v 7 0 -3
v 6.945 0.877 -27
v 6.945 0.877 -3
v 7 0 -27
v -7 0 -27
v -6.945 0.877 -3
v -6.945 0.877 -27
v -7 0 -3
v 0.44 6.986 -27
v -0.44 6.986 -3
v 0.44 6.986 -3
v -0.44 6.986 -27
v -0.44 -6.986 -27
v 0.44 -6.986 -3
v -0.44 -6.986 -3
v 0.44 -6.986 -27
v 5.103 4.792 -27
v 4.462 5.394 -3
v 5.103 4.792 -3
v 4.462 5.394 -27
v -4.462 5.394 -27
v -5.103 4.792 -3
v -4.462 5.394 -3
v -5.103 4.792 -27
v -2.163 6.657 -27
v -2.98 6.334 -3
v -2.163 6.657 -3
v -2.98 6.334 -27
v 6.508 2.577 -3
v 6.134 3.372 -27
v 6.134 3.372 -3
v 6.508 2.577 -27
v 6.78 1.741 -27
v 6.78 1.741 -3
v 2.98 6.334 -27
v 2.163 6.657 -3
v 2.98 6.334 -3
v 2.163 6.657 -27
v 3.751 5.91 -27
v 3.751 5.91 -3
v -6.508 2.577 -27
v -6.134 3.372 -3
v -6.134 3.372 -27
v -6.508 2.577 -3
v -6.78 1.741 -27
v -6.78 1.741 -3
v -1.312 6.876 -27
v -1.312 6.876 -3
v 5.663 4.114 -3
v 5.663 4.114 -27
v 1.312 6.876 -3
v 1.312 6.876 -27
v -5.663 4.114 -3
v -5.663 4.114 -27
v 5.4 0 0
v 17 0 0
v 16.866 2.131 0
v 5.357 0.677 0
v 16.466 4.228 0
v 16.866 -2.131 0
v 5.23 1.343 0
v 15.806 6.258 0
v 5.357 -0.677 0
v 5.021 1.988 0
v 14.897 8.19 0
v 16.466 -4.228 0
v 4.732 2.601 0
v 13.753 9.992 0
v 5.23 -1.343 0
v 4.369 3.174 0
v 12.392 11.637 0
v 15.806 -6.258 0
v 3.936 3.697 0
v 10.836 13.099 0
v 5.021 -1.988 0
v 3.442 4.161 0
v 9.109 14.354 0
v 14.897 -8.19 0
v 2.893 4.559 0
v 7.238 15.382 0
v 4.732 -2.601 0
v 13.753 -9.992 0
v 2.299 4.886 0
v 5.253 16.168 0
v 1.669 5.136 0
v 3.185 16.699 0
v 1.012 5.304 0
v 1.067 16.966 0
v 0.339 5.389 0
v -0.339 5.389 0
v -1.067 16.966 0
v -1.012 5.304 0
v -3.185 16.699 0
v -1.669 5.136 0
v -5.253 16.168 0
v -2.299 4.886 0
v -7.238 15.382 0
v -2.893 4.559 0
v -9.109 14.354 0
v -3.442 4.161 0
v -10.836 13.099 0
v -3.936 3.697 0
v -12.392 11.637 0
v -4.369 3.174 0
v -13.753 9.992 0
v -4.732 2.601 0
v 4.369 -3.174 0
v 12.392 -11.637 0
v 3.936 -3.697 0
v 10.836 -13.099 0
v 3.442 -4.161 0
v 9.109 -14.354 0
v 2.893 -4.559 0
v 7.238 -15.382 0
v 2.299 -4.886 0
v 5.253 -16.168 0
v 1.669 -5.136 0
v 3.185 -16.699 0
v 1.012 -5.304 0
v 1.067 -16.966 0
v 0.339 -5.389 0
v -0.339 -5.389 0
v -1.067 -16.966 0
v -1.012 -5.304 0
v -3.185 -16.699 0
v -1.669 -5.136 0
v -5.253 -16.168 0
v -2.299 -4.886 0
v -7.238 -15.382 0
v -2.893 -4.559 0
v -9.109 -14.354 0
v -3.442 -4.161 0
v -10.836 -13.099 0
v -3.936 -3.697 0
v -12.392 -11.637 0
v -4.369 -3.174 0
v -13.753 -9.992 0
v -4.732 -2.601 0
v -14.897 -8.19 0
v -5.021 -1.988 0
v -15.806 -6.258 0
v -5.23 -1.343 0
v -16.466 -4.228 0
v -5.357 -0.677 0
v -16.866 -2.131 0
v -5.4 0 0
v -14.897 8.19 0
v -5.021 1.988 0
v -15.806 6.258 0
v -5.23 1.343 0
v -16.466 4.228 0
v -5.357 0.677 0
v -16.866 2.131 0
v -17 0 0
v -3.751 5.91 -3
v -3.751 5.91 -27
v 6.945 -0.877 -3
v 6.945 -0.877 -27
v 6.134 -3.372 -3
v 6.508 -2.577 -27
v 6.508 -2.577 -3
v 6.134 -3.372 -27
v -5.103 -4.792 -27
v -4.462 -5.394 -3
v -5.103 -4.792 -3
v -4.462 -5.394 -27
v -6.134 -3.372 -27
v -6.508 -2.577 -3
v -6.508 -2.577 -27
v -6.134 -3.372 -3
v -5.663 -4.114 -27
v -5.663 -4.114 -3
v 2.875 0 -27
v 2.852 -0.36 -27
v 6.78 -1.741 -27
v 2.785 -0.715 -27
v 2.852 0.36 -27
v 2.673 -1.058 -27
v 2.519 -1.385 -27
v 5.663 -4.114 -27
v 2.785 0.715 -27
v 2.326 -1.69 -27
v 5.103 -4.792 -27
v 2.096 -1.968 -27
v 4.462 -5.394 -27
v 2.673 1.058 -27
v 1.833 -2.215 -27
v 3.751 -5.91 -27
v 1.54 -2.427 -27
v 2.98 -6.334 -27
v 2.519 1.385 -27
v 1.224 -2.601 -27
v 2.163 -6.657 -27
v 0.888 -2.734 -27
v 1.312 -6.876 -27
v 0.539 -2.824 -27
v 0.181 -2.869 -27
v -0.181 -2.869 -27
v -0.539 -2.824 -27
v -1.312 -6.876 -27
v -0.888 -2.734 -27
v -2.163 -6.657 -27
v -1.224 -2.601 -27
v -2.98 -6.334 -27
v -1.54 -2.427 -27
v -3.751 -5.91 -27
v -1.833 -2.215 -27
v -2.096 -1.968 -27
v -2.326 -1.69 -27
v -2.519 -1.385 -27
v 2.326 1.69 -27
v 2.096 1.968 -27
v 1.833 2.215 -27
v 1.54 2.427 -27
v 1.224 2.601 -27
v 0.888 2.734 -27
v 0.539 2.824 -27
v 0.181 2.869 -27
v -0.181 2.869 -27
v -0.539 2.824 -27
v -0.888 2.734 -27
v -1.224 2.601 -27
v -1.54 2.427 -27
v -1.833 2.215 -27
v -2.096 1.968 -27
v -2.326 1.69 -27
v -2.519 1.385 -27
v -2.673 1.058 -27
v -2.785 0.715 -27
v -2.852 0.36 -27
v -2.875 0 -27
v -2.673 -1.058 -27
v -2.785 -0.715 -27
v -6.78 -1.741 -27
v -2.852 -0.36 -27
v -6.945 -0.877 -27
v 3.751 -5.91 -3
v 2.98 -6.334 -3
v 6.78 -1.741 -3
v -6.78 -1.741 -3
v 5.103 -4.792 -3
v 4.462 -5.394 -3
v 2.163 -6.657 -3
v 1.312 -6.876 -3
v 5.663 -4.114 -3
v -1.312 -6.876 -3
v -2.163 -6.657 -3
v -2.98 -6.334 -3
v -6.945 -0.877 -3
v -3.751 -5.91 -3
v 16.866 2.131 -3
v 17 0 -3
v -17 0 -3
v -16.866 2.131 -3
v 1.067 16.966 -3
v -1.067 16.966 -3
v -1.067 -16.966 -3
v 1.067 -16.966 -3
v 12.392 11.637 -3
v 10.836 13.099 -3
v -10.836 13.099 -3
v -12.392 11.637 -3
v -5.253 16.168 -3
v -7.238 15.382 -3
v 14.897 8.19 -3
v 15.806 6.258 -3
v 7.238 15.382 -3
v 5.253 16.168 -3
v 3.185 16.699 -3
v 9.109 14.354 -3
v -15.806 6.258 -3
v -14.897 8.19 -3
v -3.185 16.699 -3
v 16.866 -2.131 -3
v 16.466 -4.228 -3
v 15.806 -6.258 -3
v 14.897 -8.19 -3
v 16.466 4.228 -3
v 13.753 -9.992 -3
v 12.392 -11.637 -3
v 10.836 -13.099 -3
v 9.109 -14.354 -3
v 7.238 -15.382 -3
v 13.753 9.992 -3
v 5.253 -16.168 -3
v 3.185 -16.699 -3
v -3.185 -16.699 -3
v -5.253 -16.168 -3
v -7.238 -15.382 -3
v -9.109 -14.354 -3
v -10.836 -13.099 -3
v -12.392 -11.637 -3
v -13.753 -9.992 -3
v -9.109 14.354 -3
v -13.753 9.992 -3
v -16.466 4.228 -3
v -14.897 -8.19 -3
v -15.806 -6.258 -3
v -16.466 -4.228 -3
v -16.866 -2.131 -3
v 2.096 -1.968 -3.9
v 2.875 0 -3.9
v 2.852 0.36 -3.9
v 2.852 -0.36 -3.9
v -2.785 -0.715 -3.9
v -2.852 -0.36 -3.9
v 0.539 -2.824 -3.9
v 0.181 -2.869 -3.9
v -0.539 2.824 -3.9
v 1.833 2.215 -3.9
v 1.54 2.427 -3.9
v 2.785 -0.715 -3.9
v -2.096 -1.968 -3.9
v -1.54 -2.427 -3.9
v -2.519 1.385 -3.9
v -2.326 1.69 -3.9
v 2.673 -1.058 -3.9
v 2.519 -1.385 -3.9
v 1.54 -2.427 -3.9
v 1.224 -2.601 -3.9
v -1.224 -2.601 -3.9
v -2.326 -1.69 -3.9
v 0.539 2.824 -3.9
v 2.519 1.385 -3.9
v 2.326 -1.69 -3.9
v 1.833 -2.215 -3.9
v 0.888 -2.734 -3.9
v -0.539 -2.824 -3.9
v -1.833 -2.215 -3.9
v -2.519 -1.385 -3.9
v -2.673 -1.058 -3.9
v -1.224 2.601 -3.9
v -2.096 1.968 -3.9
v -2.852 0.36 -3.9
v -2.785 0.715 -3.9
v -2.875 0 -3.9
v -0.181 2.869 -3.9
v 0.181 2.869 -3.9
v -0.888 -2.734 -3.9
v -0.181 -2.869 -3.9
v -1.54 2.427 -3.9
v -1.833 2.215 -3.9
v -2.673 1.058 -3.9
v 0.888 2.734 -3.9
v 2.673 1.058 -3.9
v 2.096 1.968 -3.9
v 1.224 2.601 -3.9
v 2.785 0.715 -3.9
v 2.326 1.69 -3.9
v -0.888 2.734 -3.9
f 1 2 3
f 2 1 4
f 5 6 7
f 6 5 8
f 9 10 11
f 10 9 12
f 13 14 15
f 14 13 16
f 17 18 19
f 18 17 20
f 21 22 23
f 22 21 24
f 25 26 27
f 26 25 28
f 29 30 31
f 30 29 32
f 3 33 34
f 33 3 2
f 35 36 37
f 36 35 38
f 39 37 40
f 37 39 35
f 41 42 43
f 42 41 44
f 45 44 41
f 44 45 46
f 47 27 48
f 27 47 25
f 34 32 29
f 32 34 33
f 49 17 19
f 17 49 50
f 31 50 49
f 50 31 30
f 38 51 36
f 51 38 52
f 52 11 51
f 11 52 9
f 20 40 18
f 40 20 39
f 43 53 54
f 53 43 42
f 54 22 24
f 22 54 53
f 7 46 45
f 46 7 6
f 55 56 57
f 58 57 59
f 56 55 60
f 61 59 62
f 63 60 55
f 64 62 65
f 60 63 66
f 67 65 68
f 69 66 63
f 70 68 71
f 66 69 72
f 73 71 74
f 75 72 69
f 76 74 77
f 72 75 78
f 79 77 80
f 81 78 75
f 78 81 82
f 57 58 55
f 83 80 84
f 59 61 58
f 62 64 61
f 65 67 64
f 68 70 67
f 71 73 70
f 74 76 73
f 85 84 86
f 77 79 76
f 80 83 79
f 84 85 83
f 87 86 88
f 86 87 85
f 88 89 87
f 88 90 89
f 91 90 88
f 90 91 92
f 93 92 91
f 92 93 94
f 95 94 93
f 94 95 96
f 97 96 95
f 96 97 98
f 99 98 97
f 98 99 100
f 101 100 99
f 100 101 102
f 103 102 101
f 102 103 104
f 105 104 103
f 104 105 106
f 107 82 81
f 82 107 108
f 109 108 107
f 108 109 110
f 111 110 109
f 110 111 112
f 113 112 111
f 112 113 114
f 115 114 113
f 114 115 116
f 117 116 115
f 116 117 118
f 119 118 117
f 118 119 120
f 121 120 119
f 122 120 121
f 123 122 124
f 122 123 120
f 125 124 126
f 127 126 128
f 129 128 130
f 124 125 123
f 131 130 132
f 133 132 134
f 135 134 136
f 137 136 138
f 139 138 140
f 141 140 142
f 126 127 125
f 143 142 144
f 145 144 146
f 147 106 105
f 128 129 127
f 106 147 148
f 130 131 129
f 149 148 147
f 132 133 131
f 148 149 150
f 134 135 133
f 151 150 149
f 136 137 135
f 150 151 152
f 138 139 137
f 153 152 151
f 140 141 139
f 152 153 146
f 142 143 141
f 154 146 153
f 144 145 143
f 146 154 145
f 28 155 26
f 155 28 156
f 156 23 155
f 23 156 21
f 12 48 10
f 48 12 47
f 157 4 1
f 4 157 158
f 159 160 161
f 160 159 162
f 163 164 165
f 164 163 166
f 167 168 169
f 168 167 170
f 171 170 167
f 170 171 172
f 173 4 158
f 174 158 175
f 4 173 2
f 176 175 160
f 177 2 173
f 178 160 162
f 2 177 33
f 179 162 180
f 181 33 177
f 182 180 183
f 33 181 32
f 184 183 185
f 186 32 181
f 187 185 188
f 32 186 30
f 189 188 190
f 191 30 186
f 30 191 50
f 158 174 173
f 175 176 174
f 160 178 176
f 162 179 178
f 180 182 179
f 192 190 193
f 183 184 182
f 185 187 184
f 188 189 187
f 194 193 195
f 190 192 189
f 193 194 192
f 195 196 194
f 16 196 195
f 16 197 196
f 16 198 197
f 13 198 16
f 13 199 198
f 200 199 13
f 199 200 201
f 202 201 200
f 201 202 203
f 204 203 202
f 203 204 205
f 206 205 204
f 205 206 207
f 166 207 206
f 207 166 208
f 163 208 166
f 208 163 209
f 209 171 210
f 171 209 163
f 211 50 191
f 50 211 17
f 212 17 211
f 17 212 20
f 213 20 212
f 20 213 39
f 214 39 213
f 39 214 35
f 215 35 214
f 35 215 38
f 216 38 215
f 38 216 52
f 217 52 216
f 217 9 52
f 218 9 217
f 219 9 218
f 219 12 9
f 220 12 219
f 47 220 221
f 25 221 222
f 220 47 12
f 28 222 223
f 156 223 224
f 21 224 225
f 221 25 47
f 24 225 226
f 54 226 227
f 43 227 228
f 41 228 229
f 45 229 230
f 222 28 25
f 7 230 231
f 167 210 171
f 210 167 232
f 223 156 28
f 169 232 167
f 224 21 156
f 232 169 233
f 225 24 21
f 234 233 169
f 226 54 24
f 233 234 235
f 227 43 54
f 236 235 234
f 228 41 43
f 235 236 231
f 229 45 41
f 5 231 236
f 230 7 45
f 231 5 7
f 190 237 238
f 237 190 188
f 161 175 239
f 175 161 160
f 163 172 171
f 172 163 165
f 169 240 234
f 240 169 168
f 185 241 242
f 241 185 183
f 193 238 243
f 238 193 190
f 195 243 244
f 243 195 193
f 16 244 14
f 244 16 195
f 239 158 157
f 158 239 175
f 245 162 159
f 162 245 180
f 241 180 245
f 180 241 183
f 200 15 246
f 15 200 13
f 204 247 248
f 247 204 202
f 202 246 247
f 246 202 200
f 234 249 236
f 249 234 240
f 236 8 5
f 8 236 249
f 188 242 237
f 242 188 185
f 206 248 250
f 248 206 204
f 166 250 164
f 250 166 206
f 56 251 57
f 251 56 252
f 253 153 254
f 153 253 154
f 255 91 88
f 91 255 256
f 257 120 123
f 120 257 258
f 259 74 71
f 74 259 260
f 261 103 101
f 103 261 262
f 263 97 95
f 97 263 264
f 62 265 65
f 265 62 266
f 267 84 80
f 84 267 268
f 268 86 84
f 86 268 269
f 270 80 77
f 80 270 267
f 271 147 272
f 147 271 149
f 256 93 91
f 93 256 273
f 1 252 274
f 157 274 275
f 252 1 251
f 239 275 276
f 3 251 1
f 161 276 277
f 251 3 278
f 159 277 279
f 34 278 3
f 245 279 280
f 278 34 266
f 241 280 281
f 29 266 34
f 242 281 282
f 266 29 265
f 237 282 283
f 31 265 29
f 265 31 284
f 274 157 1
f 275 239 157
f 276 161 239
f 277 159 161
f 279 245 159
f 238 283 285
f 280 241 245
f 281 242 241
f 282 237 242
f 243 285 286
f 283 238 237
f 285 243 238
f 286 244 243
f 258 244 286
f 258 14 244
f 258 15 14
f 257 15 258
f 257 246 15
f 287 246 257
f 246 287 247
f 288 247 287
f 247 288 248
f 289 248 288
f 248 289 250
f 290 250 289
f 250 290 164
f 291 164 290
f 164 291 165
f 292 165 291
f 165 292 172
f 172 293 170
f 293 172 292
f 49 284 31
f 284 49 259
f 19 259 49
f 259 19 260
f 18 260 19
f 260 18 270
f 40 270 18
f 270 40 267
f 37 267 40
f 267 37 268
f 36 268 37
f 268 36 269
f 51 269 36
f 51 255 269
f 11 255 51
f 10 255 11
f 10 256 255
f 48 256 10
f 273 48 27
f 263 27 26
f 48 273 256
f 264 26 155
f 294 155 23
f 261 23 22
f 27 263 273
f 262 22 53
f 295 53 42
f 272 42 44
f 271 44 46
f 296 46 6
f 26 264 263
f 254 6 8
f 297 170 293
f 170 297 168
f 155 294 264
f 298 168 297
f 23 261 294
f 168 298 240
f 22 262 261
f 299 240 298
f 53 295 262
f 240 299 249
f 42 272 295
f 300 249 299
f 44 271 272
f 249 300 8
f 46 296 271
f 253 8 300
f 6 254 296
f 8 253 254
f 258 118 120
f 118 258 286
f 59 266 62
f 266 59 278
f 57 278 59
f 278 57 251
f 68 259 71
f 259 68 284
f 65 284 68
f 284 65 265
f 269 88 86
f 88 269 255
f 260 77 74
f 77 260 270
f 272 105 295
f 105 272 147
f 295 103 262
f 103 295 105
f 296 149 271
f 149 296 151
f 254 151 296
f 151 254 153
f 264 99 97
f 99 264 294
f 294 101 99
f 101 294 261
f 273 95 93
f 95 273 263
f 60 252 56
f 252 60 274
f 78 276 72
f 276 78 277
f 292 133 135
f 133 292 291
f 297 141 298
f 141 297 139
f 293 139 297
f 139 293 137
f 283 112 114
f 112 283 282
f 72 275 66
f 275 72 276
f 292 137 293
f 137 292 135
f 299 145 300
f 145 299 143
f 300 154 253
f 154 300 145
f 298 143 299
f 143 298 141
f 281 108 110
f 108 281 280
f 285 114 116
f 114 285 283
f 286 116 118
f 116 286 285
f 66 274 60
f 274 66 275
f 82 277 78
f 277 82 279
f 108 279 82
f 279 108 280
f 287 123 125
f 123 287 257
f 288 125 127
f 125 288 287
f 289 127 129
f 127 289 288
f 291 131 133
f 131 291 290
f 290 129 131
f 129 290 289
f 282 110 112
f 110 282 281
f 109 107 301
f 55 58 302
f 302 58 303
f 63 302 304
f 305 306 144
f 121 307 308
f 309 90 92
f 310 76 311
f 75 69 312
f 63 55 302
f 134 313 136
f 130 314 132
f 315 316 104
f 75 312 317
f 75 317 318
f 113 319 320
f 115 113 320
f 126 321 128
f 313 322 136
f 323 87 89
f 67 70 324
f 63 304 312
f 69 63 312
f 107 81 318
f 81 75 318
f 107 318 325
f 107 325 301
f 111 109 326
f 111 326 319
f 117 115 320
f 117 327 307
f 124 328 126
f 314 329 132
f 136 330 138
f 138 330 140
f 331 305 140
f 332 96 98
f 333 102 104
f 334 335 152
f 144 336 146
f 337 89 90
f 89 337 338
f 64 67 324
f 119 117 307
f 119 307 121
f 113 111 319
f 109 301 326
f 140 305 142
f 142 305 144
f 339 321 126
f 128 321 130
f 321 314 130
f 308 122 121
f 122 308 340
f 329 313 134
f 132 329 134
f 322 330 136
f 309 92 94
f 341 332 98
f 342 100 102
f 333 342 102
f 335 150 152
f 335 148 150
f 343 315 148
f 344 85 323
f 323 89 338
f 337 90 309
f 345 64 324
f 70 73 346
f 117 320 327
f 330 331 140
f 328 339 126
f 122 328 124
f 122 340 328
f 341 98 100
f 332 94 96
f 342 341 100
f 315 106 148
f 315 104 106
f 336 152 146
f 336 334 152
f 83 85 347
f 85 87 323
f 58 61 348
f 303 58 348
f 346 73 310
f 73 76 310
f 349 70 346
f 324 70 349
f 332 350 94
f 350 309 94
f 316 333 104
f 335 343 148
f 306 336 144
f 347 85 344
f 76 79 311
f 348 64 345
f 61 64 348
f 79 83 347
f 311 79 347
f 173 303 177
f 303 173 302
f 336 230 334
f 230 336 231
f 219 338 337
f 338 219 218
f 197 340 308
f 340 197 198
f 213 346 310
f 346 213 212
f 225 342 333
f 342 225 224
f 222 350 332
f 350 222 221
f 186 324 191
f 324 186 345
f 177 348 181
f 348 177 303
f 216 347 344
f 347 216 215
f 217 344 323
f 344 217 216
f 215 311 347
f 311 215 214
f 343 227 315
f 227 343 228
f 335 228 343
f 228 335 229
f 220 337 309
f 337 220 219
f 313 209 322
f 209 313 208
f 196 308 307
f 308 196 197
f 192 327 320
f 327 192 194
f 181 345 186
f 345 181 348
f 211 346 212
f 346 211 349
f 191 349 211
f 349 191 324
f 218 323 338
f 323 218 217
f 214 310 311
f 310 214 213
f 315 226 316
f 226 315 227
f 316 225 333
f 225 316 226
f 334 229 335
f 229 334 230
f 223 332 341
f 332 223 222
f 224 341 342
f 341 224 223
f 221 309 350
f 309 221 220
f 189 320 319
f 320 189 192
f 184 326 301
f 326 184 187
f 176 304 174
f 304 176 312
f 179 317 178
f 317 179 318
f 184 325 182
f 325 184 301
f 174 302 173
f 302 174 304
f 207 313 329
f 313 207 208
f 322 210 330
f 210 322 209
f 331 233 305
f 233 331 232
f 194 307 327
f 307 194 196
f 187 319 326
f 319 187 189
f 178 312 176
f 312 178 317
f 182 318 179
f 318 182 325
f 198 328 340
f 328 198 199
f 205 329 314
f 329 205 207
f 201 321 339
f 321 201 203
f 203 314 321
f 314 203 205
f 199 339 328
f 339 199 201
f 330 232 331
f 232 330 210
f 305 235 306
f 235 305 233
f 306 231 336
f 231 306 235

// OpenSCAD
$fn = 50;


difference() {
	union() {
		translate(v = [0, 0, -27.0000000000]) {
			cylinder(h = 27, r = 7.0000000000);
		}
		translate(v = [0, 0, -3.0000000000]) {
			cylinder(h = 3, r = 17.0000000000);
		}
	}
	union() {
		translate(v = [0, 0, 0]) {
			rotate(a = [0, 0, 0]) {
				difference() {
					union() {
						#translate(v = [0, 0, -27.0000000000]) {
							cylinder(h = 27, r = 2.6000000000);
						}
						#translate(v = [0, 0, -3.9000000000]) {
							cylinder(h = 3.9000000000, r1 = 2.8750000000, r2 = 5.4000000000);
						}
						#translate(v = [0, 0, -27.0000000000]) {
							cylinder(h = 27, r = 2.8750000000);
						}
						#translate(v = [0, 0, -27.0000000000]) {
							cylinder(h = 27, r = 2.6000000000);
						}
					}
					union();
				}
			}
		}
	}
}
